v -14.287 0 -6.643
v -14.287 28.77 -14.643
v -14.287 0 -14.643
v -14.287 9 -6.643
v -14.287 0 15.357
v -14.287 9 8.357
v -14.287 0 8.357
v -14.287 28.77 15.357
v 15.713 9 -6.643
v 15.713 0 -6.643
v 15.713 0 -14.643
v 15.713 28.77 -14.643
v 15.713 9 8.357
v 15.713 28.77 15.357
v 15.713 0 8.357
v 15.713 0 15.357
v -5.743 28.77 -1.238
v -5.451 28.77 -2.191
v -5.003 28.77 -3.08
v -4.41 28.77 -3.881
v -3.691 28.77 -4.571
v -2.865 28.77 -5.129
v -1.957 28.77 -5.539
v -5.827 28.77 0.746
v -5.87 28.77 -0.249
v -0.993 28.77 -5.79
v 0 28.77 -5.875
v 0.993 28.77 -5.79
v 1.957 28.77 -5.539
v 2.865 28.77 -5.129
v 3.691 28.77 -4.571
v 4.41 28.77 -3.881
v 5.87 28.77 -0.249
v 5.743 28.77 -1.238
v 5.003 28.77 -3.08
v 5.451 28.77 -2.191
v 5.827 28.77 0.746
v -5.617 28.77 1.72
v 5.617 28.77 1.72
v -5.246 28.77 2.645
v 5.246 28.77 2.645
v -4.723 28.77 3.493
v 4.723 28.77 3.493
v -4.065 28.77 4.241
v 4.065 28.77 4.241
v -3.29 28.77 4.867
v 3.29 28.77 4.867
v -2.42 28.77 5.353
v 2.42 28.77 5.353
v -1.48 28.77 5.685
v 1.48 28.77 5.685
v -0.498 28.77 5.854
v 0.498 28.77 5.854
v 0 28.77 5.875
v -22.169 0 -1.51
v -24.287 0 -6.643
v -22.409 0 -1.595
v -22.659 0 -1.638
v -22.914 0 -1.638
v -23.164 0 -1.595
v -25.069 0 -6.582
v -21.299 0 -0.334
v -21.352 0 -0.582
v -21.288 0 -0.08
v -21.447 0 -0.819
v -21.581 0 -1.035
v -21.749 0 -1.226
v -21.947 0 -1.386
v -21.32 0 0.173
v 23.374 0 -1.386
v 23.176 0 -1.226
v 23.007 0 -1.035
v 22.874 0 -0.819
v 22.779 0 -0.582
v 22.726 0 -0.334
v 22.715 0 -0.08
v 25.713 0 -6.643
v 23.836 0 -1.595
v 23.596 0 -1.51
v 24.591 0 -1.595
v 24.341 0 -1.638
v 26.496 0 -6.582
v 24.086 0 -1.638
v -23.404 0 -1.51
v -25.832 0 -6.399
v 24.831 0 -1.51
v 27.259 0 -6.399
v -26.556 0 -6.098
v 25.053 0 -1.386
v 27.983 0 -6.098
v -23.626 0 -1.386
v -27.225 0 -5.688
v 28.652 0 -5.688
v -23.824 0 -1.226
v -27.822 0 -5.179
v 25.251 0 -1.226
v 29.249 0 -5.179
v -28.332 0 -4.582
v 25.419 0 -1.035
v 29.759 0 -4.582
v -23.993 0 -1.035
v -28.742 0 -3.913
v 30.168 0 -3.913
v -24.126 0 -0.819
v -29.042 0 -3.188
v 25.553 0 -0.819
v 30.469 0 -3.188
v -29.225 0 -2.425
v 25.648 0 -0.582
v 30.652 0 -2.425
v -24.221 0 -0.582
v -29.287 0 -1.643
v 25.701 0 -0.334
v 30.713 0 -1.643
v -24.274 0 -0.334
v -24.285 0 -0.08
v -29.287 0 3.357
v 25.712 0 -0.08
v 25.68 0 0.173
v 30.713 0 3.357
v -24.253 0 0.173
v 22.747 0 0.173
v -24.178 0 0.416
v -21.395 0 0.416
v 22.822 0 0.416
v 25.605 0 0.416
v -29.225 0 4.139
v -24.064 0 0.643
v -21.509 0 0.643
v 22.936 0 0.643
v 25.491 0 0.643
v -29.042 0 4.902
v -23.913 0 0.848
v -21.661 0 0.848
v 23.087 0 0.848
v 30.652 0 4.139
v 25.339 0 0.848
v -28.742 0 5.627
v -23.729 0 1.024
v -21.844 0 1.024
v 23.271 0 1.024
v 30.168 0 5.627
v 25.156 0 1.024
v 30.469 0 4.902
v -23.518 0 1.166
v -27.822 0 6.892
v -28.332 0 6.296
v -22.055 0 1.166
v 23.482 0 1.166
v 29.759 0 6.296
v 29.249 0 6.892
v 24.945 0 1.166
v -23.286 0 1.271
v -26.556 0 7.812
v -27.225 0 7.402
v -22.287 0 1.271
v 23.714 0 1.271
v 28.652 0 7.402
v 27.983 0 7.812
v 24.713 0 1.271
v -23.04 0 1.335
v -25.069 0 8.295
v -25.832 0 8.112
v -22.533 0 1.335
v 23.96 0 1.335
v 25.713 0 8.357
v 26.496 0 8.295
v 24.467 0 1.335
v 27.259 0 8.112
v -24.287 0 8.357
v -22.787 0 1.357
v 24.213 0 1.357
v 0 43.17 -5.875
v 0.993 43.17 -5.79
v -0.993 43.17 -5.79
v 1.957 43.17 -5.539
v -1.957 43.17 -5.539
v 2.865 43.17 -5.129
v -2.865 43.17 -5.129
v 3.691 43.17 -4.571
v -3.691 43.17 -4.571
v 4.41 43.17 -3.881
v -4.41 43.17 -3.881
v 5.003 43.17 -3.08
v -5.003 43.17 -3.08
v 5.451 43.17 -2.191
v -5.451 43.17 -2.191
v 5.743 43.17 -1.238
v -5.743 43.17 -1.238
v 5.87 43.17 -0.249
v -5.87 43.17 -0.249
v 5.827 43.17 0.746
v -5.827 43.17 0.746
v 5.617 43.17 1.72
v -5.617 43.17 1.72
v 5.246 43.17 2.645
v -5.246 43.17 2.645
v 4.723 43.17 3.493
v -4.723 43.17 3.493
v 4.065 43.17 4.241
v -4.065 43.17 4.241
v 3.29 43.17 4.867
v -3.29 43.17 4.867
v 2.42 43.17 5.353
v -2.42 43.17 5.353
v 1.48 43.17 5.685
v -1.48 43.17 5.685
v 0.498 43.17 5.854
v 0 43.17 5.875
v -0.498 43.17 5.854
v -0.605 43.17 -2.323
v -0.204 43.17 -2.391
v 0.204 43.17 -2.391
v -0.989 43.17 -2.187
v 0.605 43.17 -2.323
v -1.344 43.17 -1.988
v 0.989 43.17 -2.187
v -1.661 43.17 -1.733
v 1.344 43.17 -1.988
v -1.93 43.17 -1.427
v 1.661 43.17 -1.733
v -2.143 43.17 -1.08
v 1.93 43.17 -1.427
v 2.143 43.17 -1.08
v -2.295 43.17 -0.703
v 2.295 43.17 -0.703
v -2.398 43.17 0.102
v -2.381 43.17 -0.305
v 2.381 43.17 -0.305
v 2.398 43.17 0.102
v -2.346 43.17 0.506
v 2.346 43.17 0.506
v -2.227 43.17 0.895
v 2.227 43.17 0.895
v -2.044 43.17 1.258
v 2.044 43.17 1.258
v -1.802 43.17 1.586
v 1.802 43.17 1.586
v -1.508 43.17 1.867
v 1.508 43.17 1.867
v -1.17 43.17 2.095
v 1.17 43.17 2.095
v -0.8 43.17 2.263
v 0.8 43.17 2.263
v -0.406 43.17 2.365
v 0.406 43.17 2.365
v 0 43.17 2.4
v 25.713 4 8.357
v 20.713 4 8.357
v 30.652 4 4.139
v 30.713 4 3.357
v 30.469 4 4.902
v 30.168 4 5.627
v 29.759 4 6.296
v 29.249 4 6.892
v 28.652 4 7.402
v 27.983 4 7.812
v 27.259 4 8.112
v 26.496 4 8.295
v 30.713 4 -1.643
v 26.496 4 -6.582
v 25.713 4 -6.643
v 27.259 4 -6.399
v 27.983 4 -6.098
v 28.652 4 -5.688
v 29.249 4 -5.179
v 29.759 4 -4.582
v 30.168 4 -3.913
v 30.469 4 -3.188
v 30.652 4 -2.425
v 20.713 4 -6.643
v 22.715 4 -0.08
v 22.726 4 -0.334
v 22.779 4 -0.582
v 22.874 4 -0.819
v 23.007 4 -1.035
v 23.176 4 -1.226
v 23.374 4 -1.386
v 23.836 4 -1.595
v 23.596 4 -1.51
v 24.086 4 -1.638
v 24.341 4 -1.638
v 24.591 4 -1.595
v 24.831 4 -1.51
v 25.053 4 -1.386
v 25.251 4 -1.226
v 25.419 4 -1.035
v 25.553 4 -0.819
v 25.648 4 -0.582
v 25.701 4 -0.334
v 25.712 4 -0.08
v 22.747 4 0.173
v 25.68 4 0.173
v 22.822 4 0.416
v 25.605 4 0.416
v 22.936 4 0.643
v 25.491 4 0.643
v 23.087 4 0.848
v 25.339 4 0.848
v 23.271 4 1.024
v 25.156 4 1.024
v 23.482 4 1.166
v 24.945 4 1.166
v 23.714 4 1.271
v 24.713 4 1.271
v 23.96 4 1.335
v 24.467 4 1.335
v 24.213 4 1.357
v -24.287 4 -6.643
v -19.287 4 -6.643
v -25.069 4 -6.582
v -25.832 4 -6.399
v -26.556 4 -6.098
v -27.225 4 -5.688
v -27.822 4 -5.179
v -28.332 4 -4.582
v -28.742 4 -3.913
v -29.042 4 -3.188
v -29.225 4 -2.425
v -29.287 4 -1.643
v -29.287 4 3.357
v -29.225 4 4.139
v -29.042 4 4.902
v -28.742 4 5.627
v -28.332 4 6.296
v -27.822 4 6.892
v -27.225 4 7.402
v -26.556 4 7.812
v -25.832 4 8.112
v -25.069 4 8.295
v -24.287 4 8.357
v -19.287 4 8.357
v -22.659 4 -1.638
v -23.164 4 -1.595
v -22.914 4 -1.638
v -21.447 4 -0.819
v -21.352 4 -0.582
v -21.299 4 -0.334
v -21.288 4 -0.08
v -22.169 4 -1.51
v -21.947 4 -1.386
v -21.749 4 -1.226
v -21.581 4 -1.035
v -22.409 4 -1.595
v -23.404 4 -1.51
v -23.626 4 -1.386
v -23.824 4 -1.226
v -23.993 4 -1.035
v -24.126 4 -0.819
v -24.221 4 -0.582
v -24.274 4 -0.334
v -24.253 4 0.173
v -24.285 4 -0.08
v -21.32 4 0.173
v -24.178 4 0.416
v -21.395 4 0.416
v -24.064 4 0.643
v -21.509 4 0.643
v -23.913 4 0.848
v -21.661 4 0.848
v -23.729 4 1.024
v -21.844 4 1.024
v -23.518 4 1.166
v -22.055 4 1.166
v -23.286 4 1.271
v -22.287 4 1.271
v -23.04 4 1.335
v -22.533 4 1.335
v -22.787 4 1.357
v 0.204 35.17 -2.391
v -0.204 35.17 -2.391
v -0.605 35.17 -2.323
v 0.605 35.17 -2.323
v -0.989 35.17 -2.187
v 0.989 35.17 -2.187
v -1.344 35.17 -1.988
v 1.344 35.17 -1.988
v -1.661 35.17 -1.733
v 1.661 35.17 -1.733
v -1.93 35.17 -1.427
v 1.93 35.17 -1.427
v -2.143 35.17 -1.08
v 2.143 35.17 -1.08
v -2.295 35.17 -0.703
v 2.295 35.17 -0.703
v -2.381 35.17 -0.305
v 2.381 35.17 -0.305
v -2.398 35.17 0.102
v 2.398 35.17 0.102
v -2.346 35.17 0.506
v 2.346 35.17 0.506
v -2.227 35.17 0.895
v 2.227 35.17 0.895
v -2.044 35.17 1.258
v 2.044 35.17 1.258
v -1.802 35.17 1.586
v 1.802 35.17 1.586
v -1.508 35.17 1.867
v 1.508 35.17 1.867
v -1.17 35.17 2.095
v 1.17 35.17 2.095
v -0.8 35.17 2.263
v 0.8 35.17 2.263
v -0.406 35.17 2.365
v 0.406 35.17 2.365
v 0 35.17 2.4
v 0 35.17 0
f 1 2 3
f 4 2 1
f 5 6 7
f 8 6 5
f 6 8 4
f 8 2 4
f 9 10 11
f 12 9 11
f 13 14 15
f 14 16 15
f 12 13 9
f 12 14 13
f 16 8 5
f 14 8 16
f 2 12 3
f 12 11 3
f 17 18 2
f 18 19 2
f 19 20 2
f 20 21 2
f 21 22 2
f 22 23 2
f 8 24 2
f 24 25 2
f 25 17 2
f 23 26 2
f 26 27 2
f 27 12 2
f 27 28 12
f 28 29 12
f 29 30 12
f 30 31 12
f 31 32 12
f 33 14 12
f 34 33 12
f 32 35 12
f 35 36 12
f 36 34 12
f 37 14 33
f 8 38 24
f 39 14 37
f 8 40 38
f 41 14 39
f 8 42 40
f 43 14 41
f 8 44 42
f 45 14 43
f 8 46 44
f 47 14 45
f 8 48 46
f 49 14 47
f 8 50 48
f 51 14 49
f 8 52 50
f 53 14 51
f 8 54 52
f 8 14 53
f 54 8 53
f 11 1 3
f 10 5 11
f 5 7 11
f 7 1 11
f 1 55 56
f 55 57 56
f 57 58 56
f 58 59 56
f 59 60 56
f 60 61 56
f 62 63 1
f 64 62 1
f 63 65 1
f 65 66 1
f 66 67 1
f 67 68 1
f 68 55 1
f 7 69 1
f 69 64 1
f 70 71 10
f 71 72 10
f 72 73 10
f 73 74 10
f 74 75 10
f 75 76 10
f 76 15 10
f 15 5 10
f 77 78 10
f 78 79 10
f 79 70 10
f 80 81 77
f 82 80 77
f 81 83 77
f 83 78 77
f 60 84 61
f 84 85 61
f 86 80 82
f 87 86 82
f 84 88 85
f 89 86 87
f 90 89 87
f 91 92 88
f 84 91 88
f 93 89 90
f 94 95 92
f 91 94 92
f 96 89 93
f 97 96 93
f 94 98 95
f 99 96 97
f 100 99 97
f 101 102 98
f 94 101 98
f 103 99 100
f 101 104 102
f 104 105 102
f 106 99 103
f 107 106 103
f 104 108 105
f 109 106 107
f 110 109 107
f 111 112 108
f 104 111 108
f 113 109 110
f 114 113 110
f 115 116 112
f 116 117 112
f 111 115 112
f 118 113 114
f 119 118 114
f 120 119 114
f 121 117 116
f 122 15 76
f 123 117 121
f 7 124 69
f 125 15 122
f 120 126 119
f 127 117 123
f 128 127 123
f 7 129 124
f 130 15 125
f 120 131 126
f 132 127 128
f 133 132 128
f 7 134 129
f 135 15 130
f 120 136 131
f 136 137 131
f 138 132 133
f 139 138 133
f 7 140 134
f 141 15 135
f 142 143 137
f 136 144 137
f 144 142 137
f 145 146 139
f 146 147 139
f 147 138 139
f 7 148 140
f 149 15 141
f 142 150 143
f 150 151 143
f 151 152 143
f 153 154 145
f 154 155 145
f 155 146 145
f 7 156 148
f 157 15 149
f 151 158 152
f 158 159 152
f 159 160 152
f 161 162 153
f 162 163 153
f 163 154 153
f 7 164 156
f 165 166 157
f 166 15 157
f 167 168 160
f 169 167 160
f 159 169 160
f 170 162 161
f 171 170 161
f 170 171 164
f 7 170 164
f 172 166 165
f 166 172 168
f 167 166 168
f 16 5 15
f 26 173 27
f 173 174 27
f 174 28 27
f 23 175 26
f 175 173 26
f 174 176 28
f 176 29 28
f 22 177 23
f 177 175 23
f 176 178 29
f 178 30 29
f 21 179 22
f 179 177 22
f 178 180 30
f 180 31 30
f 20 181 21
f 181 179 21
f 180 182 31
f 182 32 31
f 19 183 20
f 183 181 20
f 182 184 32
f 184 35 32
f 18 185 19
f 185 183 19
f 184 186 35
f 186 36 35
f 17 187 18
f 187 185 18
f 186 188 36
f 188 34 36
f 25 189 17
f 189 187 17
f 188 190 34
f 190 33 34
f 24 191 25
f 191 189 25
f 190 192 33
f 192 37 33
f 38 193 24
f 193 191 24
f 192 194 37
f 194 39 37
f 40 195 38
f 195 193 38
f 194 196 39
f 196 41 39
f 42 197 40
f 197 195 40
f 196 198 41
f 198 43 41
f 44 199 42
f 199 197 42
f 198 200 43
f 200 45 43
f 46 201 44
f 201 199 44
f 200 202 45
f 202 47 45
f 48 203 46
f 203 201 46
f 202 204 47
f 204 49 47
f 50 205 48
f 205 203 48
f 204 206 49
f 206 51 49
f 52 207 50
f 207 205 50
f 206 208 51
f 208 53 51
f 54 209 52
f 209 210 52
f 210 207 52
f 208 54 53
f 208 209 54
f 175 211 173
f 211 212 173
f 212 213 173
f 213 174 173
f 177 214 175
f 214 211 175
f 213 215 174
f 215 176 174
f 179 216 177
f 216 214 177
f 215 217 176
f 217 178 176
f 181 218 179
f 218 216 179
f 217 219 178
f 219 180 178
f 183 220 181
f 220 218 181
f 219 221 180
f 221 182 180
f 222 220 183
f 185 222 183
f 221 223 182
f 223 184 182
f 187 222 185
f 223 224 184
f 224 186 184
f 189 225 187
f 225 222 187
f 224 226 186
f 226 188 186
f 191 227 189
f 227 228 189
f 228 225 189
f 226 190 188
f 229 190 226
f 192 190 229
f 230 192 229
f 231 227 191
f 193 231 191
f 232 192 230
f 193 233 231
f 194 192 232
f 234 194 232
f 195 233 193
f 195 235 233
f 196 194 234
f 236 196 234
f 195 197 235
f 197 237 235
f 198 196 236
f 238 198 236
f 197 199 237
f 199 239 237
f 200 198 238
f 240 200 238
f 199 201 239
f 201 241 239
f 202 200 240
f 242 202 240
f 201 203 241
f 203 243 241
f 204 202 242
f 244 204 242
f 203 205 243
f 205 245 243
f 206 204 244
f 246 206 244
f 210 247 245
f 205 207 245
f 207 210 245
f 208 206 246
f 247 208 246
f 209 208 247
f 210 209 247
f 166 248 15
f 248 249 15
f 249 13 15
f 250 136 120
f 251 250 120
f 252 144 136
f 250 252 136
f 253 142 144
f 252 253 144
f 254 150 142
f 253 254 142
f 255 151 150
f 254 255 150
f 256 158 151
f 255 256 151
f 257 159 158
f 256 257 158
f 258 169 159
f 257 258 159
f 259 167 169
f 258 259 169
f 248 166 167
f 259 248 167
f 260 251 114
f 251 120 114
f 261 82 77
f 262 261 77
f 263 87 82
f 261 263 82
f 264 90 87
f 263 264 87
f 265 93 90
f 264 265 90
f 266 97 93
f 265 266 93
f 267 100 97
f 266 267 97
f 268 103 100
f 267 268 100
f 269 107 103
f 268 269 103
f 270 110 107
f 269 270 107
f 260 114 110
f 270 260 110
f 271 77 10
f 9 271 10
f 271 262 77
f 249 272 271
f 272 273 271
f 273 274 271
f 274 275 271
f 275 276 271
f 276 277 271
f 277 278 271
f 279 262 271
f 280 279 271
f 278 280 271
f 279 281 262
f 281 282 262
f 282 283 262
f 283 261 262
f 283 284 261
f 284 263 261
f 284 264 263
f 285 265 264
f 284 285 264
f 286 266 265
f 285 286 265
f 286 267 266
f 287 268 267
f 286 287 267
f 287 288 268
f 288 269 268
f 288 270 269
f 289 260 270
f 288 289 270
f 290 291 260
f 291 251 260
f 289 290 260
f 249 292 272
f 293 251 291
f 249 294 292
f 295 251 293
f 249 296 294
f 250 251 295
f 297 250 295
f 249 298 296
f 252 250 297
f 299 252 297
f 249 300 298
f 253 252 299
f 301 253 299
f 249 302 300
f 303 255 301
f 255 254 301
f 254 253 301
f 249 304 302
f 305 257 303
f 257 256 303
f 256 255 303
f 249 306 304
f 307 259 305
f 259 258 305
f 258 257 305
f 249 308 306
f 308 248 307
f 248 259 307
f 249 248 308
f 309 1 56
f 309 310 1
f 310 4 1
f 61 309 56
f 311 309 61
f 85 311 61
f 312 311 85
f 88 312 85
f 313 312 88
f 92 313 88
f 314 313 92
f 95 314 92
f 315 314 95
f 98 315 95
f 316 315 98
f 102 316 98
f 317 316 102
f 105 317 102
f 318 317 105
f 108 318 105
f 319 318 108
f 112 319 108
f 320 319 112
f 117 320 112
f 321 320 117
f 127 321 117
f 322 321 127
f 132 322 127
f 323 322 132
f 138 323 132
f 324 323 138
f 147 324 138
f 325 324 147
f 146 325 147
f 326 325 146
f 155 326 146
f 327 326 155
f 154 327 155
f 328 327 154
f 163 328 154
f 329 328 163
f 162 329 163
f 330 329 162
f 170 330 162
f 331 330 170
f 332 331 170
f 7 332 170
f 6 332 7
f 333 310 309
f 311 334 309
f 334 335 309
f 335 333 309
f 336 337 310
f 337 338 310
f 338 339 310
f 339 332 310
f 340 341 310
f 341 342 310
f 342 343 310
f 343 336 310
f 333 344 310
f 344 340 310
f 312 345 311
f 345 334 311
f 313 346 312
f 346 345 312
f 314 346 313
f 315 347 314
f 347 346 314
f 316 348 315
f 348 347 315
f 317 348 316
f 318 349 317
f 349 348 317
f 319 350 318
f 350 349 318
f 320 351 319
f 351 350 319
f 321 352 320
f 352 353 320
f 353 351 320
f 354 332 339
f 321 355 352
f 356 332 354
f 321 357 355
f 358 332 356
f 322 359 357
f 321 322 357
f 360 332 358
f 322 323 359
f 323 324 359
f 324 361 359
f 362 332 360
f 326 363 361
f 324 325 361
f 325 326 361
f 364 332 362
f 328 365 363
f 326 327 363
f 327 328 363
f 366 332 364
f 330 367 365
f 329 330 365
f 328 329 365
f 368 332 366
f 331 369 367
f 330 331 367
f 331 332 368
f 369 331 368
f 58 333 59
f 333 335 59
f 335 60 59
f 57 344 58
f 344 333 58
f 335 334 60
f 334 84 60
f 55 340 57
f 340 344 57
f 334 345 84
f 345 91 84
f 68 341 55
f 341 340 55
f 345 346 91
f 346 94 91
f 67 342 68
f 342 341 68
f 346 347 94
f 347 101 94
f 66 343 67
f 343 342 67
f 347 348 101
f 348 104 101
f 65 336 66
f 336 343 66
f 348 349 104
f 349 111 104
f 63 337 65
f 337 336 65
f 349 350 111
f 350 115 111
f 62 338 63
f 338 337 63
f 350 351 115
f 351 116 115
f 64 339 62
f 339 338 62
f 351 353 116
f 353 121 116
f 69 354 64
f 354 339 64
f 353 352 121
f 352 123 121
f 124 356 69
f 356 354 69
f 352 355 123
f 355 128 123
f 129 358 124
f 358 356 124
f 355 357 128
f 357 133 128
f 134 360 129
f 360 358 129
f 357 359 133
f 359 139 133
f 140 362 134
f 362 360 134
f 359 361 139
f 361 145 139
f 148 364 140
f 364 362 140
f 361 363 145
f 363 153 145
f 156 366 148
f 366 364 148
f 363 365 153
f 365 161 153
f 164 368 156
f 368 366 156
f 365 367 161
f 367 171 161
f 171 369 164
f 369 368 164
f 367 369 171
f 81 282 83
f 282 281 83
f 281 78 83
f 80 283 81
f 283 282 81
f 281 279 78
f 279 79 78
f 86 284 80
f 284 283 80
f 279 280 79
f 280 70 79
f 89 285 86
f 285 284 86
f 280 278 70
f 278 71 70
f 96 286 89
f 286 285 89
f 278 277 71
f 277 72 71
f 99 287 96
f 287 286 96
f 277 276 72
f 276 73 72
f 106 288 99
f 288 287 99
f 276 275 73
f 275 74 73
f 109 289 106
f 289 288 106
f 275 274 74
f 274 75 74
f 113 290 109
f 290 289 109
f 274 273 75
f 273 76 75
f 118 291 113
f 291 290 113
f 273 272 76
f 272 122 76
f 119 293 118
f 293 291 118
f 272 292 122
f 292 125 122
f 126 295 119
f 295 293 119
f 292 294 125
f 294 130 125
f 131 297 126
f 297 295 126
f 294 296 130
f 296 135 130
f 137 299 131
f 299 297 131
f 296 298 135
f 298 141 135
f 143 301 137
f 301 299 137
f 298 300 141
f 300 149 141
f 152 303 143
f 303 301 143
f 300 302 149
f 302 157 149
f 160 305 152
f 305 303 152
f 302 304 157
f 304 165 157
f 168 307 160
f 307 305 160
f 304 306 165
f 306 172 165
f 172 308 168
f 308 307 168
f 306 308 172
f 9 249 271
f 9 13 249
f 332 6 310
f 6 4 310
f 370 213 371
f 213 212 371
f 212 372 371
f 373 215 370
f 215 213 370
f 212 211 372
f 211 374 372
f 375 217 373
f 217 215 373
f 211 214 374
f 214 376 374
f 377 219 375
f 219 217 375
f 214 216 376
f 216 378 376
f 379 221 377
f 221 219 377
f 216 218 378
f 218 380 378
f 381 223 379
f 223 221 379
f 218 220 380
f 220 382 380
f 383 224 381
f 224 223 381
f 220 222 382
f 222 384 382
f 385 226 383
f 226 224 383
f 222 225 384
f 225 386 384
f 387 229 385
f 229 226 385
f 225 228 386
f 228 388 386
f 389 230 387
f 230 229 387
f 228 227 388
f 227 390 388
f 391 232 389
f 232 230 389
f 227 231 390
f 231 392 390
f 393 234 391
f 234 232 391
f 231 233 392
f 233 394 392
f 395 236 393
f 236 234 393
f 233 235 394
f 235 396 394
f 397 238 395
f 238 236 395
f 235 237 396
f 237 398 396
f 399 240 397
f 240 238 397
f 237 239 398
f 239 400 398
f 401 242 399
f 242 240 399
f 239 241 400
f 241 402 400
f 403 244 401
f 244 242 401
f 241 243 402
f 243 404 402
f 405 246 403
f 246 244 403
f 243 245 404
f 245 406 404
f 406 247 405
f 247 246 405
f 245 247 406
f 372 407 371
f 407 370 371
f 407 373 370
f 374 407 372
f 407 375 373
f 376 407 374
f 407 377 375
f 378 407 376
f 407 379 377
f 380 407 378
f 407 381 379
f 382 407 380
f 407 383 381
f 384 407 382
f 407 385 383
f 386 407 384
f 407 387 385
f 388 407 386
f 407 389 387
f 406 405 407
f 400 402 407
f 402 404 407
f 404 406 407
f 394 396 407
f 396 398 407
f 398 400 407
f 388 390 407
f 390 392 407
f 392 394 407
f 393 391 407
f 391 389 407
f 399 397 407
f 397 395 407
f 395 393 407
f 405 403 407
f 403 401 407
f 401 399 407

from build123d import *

# Parameters (mm, degrees)
SKETCH_1_W               = 30
SKETCH_1_H               = 30
EXTRUDE_289_DEPTH        = 28.77
SKETCH_2_R               = 5.875
EXTRUDE_2_DEPTH          = 14.4
EXTRUDE_4_DEPTH          = 4
CUT_EXTRUDE_2_DEPTH      = 53.090646066
CUT_EXTRUDE_2_DEPTH_BACK = 53.090646066
SKETCH_6_R               = 1.5
CHAMFER_2_SIZE           = 5
CHAMFER_3_SIZE           = 5
SKETCH_4_R               = 2.4
CUT_EXTRUDE_3_DEPTH      = 8


with BuildPart() as part:
    # Эскиз1 → Extrude 289 (new body)
    with BuildSketch(Plane(origin=(0, 0, 0), x_dir=(1, 0, 0), z_dir=(0, 1, 0))):
        with Locations((0.713469456, -0.356734728)):
            Rectangle(SKETCH_1_W, SKETCH_1_H)
    extrude(amount=EXTRUDE_289_DEPTH)

    # Эскиз2 → Бобышка-Вытянуть2 (add)
    with BuildSketch(Plane(origin=(0, 28.77, 0), x_dir=(1, 0, 0), z_dir=(0, 1, 0))):
        with Locations(Location((0, 0, 0), (0, 0, 270))):
            Circle(SKETCH_2_R)
    extrude(amount=EXTRUDE_2_DEPTH)

    # Эскиз5 → Бобышка-Вытянуть4 (add)
    with BuildSketch(Plane.XZ):
        with BuildLine():
            Line((15.713469456, 8.356734728), (25.713469456, 8.356734728))
            ThreePointArc((25.713469456, 8.356734728), (29.249003362, 6.892268634), (30.713469456, 3.356734728))
            Line((30.713469456, 3.356734728), (30.713469456, -1.643265272))
            ThreePointArc((30.713469456, -1.643265272), (29.249003362, -5.178799178), (25.713469456, -6.643265272))
            Line((25.713469456, -6.643265272), (15.713469456, -6.643265272))
            Line((15.713469456, -6.643265272), (15.713469456, 8.356734728))
        make_face()
        with BuildLine():
            Line((-14.286530544, 8.356734728), (-24.286530544, 8.356734728))
            ThreePointArc((-24.286530544, 8.356734728), (-27.82206445, 6.892268634), (-29.286530544, 3.356734728))
            Line((-29.286530544, 3.356734728), (-29.286530544, -1.643265272))
            ThreePointArc((-29.286530544, -1.643265272), (-27.82206445, -5.178799178), (-24.286530544, -6.643265272))
            Line((-24.286530544, -6.643265272), (-14.286530544, -6.643265272))
            Line((-14.286530544, -6.643265272), (-14.286530544, 8.356734728))
        make_face()
    extrude(amount=-EXTRUDE_4_DEPTH)

    # Эскиз6 → Вырез-Вытянуть2 (cut, two sides: drawn at the far end of the back side and taken through both)
    with BuildSketch(Plane(origin=(0, 4, 0), x_dir=(1, 0, 0), z_dir=(0, 1, 0)).offset(-CUT_EXTRUDE_2_DEPTH_BACK)):
        with Locations(Location((24.213469456, 0.143265272, 0), (0, 0, 270))):
            Circle(SKETCH_6_R)
        with Locations(Location((-22.786530544, 0.143265272, 0), (0, 0, 270))):
            Circle(SKETCH_6_R)
    extrude(amount=CUT_EXTRUDE_2_DEPTH + CUT_EXTRUDE_2_DEPTH_BACK, mode=Mode.SUBTRACT)

    # Фаска2
    chamfer_2_edges = [part.edges().sort_by_distance(p)[0] for p in [
        (15.713469456, 4, 0.856734728),
    ]]
    chamfer(chamfer_2_edges, length=CHAMFER_2_SIZE)

    # Фаска3
    chamfer_3_edges = [part.edges().sort_by_distance(p)[0] for p in [
        (-14.286530544, 4, 0.856734728),
    ]]
    chamfer(chamfer_3_edges, length=CHAMFER_3_SIZE)

    # Эскиз4 → Вырез-Вытянуть3 (cut)
    with BuildSketch(Plane(origin=(0, 43.17, 0), x_dir=(1, 0, 0), z_dir=(0, 1, 0))):
        with Locations(Location((0, 0, 0), (0, 0, 270))):
            Circle(SKETCH_4_R)
    extrude(amount=-CUT_EXTRUDE_3_DEPTH, mode=Mode.SUBTRACT)


solid = part.part
